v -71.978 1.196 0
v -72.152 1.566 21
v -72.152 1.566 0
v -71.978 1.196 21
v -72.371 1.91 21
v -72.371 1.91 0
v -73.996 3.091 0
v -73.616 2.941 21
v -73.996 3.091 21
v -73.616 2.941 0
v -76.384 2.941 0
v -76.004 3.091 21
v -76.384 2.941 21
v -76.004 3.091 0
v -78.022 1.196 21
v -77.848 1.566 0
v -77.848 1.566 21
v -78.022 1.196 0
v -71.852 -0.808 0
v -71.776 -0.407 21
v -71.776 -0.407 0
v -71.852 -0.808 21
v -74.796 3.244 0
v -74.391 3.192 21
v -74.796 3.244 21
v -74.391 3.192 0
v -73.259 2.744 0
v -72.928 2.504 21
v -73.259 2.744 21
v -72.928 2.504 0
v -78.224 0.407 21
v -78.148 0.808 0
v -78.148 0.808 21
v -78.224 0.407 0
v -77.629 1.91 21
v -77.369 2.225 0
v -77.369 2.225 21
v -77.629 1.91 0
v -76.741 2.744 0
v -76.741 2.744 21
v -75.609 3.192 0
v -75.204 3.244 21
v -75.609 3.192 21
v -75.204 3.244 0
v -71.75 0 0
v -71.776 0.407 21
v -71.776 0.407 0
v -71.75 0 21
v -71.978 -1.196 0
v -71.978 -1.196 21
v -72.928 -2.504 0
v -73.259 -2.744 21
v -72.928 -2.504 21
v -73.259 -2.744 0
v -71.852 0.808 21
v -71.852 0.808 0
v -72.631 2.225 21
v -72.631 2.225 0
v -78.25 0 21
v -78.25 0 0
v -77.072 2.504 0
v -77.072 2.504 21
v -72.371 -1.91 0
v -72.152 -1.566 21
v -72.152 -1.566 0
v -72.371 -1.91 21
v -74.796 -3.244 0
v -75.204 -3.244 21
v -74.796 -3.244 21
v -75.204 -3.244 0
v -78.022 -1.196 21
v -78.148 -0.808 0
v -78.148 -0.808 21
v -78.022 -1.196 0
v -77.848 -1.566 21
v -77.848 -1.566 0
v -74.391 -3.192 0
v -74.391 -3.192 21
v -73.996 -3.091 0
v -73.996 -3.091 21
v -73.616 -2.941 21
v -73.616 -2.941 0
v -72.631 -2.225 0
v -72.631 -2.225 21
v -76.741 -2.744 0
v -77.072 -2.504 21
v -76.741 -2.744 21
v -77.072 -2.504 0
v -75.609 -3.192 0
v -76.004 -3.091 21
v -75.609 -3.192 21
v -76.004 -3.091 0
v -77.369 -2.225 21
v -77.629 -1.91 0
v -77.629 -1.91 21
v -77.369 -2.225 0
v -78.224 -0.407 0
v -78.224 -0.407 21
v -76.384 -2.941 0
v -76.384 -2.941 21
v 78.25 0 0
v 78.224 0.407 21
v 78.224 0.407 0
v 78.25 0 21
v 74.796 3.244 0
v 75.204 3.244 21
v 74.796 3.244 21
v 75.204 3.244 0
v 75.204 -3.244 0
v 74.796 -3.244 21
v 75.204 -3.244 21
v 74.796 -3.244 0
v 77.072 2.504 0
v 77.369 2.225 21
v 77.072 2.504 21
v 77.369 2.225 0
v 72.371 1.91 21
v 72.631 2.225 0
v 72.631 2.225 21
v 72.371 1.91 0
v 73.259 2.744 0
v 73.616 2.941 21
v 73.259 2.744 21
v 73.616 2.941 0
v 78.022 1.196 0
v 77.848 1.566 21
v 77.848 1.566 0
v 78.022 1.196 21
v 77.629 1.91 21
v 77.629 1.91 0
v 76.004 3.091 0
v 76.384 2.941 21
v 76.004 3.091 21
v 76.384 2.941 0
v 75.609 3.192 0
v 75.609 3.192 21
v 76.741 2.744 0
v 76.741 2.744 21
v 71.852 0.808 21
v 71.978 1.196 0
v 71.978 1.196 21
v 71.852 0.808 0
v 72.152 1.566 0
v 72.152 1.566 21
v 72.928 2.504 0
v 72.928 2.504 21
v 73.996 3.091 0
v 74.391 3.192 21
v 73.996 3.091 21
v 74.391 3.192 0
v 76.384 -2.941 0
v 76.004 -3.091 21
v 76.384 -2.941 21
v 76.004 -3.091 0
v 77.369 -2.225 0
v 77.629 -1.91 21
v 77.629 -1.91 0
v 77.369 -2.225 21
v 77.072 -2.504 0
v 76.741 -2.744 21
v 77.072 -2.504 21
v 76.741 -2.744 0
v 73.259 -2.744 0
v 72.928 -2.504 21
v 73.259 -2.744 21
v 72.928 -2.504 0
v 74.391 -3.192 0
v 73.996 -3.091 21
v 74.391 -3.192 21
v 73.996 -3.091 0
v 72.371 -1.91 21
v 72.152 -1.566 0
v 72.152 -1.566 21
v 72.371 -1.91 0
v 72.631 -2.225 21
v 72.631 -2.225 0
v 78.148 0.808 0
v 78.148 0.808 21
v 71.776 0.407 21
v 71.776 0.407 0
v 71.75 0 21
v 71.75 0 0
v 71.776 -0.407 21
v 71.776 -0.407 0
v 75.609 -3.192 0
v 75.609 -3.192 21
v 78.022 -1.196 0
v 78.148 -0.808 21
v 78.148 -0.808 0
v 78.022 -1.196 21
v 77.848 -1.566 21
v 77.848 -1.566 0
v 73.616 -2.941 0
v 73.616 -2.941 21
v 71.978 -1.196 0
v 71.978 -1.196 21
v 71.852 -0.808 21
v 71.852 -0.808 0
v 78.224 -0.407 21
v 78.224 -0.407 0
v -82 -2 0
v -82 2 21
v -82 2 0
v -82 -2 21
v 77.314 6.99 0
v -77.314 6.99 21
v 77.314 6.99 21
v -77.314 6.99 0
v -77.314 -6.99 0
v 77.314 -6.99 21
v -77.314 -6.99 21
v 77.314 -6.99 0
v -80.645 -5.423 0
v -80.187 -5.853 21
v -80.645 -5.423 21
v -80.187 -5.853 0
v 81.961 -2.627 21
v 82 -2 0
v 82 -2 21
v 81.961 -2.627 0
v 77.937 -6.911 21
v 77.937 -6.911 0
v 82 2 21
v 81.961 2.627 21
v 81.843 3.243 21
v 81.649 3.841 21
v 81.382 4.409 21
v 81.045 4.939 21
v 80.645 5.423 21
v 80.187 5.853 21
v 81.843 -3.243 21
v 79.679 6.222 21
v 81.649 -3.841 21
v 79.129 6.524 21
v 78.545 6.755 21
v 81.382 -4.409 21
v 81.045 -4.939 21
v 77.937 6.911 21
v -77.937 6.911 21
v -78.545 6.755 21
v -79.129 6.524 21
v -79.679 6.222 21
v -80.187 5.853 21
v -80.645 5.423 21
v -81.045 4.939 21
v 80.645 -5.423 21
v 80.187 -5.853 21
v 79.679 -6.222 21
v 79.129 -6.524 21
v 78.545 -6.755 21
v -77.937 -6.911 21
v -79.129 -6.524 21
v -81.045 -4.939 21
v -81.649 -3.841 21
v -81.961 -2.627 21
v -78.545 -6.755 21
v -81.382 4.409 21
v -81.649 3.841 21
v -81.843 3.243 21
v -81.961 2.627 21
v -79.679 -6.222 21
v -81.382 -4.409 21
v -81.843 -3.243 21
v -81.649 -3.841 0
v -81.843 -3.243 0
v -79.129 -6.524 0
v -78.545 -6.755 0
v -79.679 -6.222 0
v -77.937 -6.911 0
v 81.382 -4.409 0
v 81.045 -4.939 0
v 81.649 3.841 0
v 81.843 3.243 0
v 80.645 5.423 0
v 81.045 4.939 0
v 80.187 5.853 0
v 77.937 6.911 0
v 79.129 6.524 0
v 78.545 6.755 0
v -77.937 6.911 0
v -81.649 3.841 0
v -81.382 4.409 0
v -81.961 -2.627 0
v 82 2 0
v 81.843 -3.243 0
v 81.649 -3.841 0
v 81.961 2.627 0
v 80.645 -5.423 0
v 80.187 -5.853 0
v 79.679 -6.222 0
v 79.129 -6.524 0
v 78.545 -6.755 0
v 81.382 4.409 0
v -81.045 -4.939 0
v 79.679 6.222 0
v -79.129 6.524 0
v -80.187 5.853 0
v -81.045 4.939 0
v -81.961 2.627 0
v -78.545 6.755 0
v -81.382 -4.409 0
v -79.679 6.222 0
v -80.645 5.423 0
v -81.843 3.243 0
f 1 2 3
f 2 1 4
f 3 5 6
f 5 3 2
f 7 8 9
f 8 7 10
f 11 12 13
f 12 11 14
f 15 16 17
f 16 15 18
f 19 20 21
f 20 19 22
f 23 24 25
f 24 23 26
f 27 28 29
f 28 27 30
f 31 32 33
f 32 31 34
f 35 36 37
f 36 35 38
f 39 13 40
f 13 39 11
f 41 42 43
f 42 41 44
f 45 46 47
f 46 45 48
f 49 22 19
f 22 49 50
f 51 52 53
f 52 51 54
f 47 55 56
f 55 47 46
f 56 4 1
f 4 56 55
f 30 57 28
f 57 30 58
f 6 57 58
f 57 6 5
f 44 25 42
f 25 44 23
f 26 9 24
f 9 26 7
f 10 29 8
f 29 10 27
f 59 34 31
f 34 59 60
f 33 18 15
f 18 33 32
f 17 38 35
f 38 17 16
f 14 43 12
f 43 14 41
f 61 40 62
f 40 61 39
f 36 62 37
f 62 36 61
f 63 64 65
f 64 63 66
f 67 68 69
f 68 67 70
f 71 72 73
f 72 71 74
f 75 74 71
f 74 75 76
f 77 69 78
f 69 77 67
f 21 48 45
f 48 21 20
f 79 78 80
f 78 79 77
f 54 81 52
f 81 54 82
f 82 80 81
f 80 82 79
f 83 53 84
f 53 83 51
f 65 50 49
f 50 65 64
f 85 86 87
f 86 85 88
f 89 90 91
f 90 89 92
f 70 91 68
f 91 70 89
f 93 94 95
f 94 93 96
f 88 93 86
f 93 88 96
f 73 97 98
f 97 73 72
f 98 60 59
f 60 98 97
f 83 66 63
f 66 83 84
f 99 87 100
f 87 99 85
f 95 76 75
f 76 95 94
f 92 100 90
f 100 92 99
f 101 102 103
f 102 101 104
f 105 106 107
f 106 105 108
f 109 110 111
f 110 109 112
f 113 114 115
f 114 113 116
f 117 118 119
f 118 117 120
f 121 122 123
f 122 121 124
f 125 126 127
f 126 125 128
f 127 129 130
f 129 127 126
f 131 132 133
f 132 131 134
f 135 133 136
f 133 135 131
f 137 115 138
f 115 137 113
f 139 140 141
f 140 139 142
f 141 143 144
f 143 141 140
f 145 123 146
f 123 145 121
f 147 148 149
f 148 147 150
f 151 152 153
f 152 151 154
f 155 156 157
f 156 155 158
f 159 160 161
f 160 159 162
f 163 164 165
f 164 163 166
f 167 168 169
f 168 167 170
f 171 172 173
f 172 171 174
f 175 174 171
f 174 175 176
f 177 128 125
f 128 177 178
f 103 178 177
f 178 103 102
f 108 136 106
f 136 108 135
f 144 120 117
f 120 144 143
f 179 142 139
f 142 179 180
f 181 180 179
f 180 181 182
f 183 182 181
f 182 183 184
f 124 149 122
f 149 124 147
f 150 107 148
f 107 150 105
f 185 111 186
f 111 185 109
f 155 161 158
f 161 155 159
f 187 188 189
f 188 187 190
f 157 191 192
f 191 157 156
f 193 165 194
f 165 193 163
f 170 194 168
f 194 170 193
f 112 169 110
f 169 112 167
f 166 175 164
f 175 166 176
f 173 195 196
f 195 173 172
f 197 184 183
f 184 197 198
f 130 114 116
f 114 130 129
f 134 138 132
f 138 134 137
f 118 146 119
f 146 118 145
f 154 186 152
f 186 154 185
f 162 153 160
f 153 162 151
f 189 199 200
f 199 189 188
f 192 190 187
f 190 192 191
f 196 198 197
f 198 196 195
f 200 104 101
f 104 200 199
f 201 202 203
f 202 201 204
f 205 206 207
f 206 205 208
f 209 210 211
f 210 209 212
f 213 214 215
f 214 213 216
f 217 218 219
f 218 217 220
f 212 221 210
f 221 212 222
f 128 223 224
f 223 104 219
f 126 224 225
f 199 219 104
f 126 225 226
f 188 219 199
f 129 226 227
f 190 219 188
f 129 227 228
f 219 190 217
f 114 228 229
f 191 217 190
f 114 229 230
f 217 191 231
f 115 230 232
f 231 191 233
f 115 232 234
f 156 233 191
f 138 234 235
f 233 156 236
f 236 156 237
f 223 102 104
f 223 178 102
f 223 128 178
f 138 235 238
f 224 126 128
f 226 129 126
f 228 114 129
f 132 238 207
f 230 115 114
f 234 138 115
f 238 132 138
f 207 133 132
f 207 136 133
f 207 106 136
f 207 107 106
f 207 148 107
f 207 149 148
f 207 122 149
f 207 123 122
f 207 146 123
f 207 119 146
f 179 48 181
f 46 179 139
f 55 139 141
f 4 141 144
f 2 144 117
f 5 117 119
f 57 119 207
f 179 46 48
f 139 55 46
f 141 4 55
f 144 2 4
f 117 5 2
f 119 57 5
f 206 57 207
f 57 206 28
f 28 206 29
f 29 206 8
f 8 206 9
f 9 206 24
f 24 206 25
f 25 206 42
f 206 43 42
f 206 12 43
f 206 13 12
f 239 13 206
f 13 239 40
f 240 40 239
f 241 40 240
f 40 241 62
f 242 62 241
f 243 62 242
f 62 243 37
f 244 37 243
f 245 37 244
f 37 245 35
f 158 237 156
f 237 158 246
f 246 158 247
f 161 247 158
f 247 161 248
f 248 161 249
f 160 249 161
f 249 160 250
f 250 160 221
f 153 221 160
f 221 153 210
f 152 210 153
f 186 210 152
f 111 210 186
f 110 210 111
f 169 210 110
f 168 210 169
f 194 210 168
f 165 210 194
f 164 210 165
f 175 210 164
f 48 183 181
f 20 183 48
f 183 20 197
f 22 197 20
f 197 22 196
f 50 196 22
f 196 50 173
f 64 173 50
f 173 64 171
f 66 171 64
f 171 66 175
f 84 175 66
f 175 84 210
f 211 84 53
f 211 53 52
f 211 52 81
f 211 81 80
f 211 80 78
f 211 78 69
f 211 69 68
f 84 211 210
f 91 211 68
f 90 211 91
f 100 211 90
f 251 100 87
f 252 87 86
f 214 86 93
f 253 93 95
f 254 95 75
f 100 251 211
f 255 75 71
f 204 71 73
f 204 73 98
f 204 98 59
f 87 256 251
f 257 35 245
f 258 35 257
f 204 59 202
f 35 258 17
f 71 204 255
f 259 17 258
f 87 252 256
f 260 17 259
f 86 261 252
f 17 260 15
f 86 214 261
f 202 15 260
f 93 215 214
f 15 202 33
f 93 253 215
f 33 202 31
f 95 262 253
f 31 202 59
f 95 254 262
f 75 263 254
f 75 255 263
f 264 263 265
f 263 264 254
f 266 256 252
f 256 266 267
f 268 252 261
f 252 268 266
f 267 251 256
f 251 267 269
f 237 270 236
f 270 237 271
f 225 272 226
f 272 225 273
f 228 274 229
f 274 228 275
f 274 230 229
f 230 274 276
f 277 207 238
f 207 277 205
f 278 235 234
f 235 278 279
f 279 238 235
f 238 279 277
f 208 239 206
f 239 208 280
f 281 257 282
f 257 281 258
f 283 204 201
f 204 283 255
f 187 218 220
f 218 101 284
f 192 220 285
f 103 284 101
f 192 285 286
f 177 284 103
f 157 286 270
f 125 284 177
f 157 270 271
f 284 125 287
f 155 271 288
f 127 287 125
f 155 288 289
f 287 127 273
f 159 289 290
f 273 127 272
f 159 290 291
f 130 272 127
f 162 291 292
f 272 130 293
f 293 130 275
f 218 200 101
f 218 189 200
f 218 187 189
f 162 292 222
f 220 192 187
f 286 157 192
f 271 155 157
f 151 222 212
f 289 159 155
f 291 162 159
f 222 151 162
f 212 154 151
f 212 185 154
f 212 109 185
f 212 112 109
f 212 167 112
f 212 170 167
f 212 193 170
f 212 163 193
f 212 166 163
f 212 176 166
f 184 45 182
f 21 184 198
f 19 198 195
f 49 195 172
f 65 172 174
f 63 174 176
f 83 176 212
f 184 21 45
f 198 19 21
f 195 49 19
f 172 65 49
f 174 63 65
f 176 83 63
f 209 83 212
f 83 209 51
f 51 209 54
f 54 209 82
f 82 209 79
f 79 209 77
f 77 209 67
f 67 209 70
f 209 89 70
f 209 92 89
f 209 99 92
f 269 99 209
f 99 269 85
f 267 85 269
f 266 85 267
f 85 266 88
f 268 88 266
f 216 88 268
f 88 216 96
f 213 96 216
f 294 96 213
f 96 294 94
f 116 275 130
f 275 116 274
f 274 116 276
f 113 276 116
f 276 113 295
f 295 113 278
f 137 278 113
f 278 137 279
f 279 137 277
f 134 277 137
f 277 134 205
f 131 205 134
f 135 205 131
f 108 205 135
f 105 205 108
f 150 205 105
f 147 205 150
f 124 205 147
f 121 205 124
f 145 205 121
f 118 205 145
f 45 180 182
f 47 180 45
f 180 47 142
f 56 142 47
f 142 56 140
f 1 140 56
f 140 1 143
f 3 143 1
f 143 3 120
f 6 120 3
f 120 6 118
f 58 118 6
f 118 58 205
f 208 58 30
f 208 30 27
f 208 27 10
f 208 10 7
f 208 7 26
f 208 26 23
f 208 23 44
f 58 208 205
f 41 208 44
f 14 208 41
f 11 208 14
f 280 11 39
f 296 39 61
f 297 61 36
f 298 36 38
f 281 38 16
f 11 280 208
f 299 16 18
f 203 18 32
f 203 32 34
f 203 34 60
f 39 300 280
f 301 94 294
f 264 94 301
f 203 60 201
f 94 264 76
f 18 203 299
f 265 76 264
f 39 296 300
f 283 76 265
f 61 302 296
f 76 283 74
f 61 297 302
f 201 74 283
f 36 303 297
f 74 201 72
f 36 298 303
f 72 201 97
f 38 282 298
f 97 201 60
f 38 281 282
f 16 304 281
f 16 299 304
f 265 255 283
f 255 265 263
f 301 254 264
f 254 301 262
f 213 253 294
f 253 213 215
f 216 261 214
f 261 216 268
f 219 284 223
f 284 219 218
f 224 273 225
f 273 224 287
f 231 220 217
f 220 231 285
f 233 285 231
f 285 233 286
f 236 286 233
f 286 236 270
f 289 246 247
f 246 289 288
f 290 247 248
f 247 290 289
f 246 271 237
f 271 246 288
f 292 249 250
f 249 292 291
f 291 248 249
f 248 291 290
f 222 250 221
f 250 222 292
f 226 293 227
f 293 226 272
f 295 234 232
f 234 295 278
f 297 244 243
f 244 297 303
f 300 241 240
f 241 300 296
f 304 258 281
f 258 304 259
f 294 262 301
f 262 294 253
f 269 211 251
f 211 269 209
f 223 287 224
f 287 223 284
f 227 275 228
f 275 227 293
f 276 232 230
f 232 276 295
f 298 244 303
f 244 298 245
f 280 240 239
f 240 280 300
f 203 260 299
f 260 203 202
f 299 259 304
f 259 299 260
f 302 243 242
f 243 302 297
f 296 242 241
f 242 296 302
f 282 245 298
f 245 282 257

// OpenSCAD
$fn = 50;


difference() {
	union() {
		hull() {
			translate(v = [-77.0000000000, 2.0000000000, 0]) {
				cylinder(h = 21, r = 5);
			}
			translate(v = [77.0000000000, 2.0000000000, 0]) {
				cylinder(h = 21, r = 5);
			}
			translate(v = [-77.0000000000, -2.0000000000, 0]) {
				cylinder(h = 21, r = 5);
			}
			translate(v = [77.0000000000, -2.0000000000, 0]) {
				cylinder(h = 21, r = 5);
			}
		}
	}
	union() {
		translate(v = [-75.0000000000, 0.0000000000, 0]) {
			cylinder(h = 21, r = 3.2500000000);
		}
		translate(v = [75.0000000000, 0.0000000000, 0]) {
			cylinder(h = 21, r = 3.2500000000);
		}
		translate(v = [-75.0000000000, 0.0000000000, 0]) {
			cylinder(h = 21, r = 1.8000000000);
		}
		translate(v = [75.0000000000, 0.0000000000, 0]) {
			cylinder(h = 21, r = 1.8000000000);
		}
		translate(v = [-75.0000000000, 0.0000000000, 0]) {
			cylinder(h = 21, r = 1.8000000000);
		}
		translate(v = [75.0000000000, 0.0000000000, 0]) {
			cylinder(h = 21, r = 1.8000000000);
		}
		translate(v = [-75.0000000000, 0.0000000000, 0]) {
			cylinder(h = 21, r = 1.8000000000);
		}
		translate(v = [75.0000000000, 0.0000000000, 0]) {
			cylinder(h = 21, r = 1.8000000000);
		}
	}
}
